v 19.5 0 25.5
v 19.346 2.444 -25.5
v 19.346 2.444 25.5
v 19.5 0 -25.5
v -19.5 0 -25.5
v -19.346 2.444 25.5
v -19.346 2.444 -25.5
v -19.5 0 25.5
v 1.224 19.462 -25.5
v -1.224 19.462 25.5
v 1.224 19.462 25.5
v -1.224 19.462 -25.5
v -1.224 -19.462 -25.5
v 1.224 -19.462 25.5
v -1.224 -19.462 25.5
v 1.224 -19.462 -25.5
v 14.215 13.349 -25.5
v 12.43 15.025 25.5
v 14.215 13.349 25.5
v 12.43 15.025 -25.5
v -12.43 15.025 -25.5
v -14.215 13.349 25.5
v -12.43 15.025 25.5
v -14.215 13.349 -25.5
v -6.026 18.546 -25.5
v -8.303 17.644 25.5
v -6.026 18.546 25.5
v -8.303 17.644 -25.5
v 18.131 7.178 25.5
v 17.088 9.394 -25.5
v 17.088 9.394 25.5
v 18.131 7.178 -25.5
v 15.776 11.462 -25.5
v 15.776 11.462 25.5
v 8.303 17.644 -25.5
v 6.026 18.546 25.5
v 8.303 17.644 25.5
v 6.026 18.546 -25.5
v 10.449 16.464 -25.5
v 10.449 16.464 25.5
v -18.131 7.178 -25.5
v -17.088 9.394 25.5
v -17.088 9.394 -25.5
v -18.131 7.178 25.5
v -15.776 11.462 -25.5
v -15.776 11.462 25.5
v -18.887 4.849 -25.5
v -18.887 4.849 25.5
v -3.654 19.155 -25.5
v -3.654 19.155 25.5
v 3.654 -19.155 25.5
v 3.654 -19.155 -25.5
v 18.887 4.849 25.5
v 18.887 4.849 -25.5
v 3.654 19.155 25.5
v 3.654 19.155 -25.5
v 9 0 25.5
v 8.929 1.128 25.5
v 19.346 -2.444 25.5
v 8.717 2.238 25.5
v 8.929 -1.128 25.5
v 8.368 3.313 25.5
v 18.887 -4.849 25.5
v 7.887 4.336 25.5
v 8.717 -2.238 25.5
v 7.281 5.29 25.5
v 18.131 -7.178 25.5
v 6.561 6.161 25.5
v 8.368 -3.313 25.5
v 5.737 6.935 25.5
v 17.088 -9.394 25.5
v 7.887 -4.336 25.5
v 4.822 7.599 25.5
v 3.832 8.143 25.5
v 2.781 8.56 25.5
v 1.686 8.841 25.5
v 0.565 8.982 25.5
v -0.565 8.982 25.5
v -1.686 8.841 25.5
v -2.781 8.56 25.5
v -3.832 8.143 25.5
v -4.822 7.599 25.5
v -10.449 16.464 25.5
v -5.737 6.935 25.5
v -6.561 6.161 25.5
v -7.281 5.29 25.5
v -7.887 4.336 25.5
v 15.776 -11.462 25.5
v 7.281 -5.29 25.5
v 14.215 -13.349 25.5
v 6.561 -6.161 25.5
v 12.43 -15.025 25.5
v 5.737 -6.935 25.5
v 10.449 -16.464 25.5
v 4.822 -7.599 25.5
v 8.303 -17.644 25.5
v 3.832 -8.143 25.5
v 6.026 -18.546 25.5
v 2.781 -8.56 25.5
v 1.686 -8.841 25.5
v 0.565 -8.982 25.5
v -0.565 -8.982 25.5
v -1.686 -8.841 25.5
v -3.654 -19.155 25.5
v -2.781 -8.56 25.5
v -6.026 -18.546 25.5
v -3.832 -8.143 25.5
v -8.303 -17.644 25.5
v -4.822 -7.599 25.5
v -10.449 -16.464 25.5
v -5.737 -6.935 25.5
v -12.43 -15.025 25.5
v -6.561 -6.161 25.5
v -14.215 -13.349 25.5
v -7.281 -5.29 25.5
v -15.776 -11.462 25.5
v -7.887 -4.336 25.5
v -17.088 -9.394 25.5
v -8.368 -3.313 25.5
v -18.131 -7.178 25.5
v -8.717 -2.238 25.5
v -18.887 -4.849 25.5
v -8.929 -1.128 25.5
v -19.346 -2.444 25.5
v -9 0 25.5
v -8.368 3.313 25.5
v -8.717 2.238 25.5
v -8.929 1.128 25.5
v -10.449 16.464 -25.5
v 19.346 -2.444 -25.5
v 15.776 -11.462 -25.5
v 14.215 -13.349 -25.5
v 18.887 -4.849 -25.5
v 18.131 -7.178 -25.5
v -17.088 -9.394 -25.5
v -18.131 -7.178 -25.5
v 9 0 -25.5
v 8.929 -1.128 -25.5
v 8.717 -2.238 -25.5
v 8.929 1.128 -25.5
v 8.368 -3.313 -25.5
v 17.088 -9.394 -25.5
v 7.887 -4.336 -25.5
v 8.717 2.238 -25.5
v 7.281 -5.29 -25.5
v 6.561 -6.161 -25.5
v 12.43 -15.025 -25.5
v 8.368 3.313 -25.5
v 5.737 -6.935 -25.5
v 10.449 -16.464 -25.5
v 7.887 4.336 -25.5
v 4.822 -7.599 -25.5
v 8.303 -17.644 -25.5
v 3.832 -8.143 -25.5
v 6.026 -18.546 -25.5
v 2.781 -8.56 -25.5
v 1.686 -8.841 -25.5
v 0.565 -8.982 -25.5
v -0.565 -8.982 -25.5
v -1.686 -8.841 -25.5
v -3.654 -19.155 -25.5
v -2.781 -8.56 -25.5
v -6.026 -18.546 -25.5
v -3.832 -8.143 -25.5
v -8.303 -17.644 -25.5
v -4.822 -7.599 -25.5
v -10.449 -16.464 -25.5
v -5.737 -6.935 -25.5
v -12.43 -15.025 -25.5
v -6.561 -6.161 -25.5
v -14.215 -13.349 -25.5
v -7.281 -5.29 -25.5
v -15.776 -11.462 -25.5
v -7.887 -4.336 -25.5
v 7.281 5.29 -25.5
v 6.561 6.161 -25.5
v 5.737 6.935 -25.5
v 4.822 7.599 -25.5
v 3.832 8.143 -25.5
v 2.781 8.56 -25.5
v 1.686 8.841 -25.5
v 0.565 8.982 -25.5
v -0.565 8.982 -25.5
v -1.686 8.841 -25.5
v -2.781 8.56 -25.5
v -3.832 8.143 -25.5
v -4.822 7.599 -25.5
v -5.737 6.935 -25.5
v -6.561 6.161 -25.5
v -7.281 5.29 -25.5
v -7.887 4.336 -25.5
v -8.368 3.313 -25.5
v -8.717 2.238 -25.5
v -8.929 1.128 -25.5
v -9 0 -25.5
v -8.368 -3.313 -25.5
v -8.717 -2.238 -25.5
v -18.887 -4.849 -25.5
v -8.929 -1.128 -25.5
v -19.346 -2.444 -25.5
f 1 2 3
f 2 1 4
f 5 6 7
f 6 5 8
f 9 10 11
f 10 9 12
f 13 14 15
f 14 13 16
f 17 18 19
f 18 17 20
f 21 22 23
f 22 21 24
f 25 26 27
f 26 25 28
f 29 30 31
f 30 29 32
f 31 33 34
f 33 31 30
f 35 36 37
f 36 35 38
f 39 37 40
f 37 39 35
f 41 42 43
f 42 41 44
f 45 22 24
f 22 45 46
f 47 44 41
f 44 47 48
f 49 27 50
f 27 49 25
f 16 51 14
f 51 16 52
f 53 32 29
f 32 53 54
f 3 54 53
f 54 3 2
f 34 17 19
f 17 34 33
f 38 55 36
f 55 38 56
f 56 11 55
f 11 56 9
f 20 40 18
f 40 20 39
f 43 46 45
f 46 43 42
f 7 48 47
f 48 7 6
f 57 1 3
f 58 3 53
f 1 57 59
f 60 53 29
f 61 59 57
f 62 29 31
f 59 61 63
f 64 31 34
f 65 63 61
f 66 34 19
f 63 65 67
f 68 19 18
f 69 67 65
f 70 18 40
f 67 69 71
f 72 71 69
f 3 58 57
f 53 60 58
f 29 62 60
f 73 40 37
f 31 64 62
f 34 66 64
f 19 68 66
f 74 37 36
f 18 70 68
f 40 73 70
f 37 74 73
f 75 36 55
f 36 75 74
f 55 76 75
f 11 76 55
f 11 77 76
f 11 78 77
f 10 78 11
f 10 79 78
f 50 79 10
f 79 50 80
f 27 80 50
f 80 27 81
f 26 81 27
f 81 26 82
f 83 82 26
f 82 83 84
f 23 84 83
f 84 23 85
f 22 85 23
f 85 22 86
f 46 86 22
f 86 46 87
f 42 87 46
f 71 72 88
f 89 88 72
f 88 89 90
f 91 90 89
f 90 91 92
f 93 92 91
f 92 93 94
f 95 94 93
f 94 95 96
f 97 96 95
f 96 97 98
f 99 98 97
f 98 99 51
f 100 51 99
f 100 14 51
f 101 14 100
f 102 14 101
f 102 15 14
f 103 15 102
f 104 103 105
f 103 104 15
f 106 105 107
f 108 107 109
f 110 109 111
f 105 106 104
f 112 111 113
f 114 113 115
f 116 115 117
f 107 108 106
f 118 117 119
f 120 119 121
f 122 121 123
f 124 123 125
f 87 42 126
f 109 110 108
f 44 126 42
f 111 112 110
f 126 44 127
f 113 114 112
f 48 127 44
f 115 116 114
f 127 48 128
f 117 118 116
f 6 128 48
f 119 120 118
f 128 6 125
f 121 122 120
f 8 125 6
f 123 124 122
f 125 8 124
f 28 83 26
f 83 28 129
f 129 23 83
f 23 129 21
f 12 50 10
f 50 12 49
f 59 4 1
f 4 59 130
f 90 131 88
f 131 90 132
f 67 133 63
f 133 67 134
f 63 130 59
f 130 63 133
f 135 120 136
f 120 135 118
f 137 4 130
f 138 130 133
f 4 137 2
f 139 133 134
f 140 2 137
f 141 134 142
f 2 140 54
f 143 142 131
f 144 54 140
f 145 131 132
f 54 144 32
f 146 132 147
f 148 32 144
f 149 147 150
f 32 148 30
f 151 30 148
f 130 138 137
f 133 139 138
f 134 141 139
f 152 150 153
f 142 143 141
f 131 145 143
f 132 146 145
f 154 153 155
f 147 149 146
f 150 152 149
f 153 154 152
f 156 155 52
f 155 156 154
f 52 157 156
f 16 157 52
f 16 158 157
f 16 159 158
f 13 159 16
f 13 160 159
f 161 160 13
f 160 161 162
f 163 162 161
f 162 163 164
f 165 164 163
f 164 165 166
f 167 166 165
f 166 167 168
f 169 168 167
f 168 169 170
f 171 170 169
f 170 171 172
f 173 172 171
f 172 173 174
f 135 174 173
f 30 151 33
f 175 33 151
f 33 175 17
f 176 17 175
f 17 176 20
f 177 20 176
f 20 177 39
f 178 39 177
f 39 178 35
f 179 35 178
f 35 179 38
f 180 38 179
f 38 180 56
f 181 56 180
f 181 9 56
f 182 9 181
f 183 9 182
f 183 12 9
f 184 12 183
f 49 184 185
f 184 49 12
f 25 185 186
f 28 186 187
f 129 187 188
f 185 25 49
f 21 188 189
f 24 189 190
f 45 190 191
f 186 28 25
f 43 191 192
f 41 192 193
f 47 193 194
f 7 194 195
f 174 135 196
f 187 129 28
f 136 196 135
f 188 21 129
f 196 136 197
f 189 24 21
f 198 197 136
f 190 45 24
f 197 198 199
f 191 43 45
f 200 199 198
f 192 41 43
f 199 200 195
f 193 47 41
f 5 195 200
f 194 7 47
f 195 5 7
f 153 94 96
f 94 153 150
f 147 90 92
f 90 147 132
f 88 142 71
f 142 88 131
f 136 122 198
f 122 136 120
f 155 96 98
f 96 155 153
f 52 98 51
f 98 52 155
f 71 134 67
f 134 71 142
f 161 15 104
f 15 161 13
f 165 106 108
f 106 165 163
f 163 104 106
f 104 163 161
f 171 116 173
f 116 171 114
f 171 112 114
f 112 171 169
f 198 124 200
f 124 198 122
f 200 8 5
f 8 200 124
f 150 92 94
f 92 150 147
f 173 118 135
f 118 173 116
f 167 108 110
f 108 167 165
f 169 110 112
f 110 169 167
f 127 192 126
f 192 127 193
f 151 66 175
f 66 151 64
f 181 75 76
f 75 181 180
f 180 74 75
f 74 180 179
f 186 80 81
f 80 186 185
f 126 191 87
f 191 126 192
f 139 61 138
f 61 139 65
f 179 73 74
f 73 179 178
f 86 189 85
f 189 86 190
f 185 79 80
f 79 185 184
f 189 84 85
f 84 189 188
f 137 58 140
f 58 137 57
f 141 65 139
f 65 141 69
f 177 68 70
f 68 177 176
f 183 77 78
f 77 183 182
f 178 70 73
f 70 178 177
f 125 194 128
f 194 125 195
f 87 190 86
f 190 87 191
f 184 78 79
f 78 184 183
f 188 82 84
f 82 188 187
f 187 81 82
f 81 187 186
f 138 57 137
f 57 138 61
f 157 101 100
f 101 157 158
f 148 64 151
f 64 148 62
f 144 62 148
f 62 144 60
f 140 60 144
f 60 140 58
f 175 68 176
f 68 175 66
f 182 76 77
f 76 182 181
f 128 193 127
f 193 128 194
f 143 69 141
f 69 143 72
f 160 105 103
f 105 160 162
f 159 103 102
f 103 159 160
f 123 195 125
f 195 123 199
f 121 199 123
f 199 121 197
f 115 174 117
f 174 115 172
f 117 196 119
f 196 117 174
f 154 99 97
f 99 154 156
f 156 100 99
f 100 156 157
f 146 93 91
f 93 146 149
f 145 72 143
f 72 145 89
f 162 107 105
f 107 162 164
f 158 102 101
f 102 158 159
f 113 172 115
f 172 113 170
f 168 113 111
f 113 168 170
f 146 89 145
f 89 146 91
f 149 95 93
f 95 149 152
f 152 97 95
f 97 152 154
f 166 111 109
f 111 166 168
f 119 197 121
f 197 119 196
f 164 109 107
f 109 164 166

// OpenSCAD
$fn = 50;


difference() {
	union() {
		translate(v = [0, 0, -25.5000000000]) {
			cylinder(h = 51, r = 19.5000000000);
		}
	}
	union() {
		translate(v = [0, 0, -100.0000000000]) {
			cylinder(h = 200, r = 9);
		}
	}
}
